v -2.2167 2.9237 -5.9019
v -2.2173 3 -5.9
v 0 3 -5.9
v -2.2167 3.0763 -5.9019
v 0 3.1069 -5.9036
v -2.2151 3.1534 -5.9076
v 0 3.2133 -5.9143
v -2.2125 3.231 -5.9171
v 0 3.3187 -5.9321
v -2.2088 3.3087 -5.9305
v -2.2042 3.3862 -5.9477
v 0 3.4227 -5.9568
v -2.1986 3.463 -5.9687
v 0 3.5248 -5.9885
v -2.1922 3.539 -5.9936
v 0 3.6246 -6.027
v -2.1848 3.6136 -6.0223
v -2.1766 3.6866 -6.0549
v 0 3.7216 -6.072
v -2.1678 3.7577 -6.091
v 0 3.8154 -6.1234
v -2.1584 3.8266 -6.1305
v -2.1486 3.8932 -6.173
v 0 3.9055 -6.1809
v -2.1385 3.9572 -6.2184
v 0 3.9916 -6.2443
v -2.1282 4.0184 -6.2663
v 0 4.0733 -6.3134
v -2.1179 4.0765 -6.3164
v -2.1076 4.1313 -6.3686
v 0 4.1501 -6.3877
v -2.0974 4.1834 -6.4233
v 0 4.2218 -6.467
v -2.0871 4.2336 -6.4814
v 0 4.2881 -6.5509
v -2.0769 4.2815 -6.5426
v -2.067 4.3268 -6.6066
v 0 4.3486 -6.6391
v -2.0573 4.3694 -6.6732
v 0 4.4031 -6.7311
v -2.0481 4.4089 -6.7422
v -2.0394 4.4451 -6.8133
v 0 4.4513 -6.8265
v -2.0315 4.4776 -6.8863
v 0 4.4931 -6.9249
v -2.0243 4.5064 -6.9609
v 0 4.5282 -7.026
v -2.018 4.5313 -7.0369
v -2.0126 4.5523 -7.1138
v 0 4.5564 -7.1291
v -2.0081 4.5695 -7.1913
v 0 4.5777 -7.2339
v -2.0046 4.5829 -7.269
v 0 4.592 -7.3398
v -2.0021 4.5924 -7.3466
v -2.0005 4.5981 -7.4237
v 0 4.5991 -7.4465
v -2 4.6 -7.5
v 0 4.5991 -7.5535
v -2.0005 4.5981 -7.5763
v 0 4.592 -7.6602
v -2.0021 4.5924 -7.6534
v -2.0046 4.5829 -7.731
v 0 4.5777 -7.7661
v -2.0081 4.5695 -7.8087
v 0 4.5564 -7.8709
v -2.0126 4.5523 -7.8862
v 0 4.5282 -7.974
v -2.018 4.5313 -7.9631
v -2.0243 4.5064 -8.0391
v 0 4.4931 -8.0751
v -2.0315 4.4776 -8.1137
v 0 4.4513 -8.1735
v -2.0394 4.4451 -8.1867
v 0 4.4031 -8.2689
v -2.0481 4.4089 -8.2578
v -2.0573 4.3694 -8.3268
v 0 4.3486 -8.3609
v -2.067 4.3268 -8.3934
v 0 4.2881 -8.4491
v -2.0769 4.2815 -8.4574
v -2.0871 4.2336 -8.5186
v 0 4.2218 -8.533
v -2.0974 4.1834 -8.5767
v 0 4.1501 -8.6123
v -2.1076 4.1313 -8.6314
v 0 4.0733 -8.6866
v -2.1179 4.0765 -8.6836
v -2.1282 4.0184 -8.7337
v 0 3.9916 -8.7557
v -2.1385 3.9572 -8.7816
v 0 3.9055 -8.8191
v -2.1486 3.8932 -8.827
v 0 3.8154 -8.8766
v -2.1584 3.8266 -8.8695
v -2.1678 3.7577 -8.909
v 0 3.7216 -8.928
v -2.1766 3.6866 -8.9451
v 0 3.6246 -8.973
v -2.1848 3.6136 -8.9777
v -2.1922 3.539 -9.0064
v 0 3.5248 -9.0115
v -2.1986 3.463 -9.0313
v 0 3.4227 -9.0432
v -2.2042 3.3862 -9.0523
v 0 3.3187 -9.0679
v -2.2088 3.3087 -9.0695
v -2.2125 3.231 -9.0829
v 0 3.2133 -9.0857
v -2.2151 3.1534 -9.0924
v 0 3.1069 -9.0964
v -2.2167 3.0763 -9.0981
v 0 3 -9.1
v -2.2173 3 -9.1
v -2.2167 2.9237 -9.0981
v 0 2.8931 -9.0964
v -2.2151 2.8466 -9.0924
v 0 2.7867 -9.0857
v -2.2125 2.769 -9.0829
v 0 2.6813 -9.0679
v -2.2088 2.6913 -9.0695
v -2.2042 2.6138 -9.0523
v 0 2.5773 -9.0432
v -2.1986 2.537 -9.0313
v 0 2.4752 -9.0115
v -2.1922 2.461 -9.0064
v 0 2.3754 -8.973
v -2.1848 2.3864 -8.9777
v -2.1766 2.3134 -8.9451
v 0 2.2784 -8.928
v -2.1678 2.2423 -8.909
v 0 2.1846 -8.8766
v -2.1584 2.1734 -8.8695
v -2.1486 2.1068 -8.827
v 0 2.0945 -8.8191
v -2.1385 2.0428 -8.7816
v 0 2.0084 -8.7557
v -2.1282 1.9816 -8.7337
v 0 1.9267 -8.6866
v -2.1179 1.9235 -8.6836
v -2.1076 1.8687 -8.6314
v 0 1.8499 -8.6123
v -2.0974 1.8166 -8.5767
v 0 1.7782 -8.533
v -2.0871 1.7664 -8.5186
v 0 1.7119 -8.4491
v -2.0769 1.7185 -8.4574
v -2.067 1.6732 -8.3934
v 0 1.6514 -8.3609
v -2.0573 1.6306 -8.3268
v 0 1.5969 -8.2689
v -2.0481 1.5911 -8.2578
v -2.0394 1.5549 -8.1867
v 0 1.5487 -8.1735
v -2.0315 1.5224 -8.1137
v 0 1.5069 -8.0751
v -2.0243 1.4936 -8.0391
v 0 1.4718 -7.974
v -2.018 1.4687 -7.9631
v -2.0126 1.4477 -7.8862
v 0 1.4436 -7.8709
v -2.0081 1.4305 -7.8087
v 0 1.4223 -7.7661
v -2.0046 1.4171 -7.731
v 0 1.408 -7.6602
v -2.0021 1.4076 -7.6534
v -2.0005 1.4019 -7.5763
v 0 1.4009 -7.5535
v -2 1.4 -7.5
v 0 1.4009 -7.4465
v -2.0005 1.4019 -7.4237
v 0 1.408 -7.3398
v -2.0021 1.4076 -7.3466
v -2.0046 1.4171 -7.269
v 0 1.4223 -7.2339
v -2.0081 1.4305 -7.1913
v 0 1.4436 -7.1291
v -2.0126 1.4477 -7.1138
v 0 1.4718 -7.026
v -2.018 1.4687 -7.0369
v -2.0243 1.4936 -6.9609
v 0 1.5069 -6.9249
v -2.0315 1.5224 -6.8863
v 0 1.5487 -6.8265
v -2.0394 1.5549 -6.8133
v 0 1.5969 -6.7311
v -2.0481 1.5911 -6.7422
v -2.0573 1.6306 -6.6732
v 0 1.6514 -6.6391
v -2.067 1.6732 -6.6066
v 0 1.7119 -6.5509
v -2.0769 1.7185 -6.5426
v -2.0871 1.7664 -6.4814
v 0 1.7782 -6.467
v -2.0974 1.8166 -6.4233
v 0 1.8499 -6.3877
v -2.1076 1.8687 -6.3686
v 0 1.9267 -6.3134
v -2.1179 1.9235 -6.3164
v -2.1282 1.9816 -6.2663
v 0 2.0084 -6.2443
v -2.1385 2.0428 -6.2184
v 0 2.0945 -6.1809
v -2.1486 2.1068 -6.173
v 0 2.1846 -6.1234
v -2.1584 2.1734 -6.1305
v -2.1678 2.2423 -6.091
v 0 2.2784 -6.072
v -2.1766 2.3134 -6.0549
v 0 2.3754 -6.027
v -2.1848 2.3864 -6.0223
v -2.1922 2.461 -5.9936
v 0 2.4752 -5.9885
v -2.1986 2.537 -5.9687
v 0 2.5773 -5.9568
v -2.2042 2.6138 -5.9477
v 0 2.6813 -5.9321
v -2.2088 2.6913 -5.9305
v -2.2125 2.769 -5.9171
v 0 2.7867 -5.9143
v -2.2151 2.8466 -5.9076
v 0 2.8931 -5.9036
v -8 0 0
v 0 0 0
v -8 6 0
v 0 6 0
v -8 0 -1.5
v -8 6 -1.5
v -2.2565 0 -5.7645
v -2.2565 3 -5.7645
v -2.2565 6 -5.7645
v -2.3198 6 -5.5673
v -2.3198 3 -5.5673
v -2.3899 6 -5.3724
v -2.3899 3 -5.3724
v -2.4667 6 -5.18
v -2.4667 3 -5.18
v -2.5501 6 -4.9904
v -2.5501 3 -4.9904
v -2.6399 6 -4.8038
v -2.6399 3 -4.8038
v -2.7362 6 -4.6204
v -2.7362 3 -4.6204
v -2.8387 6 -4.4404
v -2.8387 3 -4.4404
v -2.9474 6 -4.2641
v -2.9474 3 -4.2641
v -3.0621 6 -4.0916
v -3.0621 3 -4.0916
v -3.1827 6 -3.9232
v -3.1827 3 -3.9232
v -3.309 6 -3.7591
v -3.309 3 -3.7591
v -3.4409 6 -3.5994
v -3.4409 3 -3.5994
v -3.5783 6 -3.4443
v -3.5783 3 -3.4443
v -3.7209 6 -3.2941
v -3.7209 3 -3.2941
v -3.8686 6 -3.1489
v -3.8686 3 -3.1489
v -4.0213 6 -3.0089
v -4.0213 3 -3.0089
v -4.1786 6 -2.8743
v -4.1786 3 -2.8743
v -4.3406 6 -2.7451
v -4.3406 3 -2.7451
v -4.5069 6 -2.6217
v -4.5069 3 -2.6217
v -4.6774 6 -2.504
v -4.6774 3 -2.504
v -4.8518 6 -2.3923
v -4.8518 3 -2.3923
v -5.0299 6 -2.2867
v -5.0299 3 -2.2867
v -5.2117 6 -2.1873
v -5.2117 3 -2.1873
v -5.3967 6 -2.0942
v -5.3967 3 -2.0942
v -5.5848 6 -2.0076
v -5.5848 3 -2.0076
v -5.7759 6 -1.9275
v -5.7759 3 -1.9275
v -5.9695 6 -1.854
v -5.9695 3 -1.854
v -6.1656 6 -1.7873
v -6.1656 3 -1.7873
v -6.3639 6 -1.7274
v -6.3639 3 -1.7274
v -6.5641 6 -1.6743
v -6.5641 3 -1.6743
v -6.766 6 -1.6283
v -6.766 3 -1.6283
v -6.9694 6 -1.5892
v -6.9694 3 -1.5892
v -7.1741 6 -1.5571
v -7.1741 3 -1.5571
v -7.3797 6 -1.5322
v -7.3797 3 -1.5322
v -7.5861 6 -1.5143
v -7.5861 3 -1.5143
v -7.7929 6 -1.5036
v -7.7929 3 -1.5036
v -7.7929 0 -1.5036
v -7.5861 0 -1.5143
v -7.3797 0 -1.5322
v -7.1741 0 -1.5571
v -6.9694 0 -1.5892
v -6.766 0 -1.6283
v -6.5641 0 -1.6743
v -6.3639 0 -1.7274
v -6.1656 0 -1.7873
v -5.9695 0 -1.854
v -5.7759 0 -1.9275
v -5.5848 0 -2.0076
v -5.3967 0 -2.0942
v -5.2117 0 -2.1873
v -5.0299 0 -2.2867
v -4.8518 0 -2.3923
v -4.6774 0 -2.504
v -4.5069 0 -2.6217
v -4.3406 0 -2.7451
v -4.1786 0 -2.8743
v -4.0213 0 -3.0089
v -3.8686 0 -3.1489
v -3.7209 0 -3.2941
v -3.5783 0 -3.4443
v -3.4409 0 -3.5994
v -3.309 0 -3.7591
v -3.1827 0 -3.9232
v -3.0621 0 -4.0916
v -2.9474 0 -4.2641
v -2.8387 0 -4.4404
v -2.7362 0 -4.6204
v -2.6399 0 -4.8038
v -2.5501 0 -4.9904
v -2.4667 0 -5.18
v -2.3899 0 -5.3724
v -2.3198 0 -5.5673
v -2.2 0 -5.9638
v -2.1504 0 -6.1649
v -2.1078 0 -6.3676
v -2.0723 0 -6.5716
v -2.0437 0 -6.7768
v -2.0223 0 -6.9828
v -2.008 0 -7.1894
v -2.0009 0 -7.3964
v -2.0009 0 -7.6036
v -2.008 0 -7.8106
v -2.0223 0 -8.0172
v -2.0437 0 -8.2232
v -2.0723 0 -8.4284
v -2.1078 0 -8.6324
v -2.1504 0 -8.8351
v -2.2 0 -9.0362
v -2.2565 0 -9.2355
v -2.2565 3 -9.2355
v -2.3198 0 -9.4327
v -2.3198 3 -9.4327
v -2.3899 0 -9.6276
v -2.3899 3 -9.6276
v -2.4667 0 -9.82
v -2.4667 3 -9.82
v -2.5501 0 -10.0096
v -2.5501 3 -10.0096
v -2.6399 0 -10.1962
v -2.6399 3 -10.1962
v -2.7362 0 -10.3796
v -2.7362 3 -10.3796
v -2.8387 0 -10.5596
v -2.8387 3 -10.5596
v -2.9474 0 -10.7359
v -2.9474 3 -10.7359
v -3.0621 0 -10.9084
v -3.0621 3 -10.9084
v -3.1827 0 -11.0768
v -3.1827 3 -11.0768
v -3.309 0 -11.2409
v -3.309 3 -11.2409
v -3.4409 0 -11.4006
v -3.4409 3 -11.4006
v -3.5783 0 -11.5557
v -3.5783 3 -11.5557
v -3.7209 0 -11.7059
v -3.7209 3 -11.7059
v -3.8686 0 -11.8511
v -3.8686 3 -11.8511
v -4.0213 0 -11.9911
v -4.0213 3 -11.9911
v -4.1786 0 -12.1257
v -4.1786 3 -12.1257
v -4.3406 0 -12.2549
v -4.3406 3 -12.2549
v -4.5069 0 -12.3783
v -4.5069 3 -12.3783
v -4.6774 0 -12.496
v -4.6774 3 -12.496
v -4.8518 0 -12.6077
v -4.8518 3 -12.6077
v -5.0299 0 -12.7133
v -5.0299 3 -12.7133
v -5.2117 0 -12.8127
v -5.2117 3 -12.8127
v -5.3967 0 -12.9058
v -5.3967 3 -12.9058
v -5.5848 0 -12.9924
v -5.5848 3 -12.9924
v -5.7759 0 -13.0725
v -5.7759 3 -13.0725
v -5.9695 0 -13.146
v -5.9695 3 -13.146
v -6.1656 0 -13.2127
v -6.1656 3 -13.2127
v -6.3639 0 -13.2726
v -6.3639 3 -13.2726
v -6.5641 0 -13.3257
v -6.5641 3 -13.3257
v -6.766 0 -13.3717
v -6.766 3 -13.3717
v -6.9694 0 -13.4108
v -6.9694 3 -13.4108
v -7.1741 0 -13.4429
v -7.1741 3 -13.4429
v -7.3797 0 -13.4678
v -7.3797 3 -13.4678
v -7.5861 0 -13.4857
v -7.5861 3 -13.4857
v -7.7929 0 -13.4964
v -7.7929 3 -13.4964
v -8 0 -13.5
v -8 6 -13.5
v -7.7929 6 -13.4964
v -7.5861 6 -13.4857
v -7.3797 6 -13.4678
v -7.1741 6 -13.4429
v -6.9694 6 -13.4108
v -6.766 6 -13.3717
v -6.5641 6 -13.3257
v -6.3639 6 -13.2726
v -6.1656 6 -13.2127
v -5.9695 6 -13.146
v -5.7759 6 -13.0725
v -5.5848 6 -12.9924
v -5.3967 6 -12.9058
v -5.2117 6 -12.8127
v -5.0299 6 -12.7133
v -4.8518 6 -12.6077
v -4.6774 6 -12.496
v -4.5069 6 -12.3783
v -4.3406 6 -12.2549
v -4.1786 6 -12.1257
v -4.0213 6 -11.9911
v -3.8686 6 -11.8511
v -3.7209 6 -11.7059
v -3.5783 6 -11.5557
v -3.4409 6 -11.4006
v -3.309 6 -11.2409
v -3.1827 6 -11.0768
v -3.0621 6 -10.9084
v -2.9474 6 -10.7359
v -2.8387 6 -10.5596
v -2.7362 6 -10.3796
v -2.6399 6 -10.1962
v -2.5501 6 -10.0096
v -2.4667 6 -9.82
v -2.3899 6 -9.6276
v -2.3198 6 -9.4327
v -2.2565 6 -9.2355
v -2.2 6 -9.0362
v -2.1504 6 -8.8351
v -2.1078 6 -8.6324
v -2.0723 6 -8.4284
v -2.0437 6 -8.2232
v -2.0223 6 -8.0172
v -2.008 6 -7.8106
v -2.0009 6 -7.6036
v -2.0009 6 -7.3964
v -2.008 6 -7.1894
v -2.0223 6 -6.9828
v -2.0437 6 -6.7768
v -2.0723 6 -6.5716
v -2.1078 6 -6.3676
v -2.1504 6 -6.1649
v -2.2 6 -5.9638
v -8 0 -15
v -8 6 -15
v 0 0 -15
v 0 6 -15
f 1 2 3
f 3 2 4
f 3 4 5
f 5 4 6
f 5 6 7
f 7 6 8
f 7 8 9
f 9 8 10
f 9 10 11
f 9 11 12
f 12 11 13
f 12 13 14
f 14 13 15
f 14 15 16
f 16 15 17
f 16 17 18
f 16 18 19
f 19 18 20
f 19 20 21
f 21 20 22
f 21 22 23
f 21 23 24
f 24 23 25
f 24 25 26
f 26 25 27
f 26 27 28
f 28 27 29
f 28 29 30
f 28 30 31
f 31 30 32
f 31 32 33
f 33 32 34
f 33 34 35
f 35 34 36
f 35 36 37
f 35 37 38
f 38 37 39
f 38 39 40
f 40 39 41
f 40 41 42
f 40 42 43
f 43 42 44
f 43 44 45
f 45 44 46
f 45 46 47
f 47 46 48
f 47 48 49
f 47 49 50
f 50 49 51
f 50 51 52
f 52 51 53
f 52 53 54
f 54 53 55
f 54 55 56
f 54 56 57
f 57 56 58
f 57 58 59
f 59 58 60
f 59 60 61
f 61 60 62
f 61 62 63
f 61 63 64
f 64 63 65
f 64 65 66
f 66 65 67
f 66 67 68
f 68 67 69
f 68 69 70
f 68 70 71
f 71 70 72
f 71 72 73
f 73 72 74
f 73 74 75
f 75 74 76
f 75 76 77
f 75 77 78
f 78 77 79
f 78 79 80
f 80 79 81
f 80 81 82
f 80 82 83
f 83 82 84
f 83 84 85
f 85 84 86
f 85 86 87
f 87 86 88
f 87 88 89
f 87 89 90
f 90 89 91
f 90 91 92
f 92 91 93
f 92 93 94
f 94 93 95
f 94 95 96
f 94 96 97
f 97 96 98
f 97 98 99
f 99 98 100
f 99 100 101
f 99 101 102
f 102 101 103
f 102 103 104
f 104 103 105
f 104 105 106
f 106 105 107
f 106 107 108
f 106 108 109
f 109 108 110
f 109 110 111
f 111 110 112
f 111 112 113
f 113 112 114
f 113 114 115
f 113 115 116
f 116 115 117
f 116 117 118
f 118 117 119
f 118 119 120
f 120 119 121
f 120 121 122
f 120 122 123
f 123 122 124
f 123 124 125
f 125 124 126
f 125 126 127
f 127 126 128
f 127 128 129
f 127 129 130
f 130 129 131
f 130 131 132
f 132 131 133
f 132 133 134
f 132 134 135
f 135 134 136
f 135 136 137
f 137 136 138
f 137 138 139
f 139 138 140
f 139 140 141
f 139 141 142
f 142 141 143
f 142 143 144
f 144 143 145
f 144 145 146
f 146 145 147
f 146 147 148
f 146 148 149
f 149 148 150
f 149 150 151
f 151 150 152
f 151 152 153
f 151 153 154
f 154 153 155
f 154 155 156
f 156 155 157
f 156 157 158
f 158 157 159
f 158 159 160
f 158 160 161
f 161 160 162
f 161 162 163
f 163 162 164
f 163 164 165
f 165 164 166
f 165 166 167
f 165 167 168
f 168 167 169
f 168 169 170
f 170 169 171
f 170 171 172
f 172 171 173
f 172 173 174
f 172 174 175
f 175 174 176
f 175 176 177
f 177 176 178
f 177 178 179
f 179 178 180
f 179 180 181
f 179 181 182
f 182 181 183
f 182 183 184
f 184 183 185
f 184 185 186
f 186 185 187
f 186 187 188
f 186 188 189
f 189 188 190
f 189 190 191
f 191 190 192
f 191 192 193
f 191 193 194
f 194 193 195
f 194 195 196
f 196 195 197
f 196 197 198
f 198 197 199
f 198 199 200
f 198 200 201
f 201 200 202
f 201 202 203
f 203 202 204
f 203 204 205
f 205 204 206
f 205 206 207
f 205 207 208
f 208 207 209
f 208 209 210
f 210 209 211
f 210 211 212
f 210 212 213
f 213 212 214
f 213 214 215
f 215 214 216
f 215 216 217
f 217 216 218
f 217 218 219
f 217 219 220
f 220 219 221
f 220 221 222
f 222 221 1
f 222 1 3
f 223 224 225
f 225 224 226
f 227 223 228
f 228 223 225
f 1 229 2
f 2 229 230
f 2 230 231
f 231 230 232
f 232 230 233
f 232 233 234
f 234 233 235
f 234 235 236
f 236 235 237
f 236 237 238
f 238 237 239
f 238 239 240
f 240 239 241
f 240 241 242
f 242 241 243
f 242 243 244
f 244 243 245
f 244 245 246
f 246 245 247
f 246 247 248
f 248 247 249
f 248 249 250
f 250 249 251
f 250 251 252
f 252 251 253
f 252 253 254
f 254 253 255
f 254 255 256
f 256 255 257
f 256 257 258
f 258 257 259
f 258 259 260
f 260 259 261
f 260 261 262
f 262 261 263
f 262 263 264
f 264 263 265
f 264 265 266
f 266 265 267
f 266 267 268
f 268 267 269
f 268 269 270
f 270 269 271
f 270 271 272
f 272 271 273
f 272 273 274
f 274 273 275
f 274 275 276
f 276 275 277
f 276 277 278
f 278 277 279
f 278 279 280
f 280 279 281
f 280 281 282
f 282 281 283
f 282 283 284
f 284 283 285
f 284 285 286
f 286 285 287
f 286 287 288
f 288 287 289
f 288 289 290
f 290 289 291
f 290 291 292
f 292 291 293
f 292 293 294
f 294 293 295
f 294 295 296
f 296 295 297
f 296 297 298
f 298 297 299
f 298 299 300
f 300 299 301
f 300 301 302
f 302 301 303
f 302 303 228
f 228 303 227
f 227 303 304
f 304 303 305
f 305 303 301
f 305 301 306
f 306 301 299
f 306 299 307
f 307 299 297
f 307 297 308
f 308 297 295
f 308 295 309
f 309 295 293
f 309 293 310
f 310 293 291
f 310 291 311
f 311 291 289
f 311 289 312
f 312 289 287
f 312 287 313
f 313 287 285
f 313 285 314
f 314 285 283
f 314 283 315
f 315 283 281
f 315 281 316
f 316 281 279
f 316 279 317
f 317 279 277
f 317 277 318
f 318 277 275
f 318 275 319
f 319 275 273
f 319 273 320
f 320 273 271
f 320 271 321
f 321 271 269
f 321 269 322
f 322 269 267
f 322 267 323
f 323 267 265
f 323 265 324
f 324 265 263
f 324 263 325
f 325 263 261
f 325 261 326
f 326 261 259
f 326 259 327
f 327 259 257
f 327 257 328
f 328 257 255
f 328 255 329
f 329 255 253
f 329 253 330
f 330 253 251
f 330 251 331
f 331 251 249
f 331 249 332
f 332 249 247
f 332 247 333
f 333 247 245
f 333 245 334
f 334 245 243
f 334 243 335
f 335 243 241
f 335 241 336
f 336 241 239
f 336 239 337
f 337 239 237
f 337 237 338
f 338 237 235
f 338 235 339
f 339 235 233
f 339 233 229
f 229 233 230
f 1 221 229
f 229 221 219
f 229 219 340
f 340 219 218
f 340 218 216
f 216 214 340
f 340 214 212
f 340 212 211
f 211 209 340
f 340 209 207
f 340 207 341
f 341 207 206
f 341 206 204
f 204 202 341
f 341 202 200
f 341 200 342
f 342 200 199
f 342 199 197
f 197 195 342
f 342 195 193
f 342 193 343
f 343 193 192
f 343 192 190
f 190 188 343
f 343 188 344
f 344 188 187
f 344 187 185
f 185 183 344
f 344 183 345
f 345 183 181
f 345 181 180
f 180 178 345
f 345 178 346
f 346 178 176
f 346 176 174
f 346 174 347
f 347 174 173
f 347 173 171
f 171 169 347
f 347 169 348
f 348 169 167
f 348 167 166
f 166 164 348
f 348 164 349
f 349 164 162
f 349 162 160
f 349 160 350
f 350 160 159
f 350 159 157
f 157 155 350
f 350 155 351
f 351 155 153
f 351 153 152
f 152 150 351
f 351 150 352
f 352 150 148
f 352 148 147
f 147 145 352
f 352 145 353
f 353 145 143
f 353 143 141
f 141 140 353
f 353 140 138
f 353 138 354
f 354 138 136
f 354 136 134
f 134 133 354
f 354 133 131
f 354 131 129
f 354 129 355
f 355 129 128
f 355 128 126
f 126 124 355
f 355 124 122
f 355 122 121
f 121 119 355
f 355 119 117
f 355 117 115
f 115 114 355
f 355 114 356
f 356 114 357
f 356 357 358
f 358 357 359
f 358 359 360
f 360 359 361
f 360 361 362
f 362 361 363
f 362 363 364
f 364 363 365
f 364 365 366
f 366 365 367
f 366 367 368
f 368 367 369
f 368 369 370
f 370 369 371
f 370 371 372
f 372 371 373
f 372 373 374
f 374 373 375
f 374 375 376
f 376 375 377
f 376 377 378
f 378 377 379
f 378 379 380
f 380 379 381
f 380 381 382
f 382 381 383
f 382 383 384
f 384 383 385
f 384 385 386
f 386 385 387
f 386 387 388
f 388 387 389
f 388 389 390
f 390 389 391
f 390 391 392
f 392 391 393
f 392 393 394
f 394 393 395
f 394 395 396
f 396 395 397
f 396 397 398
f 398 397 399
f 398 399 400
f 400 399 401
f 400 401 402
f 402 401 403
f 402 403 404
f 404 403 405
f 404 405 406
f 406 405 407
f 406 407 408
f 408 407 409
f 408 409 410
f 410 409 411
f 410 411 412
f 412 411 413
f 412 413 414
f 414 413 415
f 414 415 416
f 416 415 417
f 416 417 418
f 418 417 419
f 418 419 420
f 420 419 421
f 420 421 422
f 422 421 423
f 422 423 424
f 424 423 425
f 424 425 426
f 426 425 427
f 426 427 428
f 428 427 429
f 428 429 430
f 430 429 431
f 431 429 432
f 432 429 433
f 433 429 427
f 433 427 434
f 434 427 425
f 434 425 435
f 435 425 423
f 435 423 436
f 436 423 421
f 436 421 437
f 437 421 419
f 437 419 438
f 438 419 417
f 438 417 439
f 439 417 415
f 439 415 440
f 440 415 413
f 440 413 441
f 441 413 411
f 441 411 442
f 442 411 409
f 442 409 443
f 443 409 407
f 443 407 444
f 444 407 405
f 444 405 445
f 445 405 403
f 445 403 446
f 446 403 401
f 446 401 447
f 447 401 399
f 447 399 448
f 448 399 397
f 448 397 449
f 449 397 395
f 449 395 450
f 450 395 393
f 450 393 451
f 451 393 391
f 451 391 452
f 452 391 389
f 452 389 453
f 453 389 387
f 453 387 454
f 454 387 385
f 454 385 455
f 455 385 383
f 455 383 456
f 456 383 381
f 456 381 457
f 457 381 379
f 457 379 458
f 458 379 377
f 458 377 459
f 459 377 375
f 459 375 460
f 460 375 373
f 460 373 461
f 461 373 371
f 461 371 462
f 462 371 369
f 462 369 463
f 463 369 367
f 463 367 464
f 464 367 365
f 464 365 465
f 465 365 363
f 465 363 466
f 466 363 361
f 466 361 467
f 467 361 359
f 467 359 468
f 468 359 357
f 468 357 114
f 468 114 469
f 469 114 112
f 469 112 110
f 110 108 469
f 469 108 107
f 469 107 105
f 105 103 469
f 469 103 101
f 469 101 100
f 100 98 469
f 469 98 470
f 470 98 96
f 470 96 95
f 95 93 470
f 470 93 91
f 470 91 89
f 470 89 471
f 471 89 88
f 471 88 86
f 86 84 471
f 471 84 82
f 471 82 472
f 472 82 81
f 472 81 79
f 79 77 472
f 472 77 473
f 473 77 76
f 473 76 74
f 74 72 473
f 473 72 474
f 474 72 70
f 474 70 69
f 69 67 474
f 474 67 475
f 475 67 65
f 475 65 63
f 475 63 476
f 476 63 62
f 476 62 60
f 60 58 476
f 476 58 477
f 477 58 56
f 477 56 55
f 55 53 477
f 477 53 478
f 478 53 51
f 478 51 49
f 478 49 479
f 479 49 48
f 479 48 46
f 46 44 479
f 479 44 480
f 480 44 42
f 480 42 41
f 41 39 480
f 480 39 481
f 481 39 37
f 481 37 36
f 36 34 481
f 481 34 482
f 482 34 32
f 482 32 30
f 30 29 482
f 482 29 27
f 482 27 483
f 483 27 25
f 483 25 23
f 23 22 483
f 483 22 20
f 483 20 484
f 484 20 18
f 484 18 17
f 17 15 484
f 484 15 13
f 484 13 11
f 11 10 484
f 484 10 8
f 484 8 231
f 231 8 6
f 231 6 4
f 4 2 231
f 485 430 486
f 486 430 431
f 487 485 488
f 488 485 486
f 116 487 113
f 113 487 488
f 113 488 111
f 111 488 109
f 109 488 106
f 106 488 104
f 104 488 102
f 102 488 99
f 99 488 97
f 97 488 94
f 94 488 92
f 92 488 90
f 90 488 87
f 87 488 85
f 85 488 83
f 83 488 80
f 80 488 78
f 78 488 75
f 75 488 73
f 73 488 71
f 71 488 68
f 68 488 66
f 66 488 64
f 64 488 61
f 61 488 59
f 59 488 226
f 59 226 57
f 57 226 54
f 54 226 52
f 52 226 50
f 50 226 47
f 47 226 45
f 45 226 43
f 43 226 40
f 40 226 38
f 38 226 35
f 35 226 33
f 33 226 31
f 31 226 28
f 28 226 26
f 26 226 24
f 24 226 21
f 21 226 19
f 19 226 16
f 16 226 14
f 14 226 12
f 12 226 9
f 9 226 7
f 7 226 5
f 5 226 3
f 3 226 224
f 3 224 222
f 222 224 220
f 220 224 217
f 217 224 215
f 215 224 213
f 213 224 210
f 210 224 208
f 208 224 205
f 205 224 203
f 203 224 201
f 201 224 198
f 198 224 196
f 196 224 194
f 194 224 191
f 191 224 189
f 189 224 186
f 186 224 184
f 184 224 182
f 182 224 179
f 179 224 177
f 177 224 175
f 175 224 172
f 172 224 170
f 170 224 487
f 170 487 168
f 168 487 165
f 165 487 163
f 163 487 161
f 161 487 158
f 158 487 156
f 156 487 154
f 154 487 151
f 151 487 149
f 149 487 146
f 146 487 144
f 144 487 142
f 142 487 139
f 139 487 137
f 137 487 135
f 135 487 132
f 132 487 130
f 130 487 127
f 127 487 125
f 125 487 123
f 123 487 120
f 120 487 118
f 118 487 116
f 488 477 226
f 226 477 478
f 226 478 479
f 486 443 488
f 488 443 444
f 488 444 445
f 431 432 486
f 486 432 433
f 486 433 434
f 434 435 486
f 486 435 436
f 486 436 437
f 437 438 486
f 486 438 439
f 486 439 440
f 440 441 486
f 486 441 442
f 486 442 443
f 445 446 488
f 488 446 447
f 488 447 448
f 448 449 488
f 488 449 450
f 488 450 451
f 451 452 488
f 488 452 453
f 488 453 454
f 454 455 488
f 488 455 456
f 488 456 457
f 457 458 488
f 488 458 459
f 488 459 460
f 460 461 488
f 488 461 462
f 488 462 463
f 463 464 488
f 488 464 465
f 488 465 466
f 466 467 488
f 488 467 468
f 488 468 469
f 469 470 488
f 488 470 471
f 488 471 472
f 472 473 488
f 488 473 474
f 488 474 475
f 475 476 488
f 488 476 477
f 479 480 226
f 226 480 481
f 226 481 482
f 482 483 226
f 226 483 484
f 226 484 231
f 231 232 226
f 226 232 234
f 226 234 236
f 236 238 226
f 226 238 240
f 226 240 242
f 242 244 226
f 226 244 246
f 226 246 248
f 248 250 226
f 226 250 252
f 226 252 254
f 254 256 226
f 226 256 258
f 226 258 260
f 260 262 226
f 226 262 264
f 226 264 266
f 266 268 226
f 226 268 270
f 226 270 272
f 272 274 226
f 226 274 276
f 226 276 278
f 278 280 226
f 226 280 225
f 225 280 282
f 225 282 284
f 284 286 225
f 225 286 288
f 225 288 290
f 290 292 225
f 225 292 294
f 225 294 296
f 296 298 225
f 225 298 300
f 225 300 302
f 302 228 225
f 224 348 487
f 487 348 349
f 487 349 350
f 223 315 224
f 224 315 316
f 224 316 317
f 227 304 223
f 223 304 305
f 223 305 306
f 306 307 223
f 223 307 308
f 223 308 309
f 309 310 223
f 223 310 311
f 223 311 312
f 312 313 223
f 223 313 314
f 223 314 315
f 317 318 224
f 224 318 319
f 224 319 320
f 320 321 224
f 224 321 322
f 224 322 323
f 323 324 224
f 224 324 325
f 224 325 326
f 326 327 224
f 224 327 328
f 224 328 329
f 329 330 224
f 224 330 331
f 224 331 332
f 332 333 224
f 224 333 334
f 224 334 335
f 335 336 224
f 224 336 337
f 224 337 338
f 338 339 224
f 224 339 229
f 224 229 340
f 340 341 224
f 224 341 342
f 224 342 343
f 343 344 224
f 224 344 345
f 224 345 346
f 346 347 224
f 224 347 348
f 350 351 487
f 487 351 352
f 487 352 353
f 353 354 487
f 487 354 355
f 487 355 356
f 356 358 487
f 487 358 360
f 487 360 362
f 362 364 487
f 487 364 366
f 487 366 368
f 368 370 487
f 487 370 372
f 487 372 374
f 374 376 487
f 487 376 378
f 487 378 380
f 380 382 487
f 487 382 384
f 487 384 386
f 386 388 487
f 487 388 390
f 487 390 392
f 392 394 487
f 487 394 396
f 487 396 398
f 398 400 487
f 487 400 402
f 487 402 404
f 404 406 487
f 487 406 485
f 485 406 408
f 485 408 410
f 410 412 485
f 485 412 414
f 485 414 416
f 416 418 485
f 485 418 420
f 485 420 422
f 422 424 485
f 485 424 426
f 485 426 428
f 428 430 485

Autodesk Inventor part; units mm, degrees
ref_plane "YZ Plane" through (0, 0, 0) normal (1, 0, 0) x (0, 1, 0)
ref_plane "XZ Plane" through (0, 0, 0) normal (0, 1, 0) x (-1, 0, 0)
ref_plane "XY Plane" through (0, 0, 0) normal (0, 0, 1) x (1, 0, 0)
sketch "Sketch1" plane through (0, 0, 0) normal (0, 1, 0) x (-1, 0, 0)
  line L0 (0, 0) -> (8, 0)
  line L1 (8, 0) -> (8, -15)
  line L2 (8, -15) -> (0, -15)
  line L3 (0, -15) -> (0, 0)
  circle A0 centre (8, -7.5) radius 6
  point P0 (8, -13.5)
  point P1 (8, -1.5)
  dimension "d1" = 8
  dimension "d7" = 15
  dimension "d8" = 15
  dimension "d9" = 12
extrude "Extrusion1" add sketch "Sketch1" along normal blind 6 contours L0 L1 A0 L2 L3
sketch "Sketch2" plane through (0, 0, 0) normal (1, 0, 0) x (0, 0, -1)
  circle A0 centre (7.5, 3) radius 1.6
  line L0 (0, 0) -> (15, 0) projected
  line L1 (0, 0) -> (0, 6) projected
  dimension "d4" = 3.2
  dimension "d5" = 3
  dimension "d6" = 7.5
extrude "Extrusion2" cut sketch "Sketch2" against normal blind 6
properties part number "Tube_adaptor"
